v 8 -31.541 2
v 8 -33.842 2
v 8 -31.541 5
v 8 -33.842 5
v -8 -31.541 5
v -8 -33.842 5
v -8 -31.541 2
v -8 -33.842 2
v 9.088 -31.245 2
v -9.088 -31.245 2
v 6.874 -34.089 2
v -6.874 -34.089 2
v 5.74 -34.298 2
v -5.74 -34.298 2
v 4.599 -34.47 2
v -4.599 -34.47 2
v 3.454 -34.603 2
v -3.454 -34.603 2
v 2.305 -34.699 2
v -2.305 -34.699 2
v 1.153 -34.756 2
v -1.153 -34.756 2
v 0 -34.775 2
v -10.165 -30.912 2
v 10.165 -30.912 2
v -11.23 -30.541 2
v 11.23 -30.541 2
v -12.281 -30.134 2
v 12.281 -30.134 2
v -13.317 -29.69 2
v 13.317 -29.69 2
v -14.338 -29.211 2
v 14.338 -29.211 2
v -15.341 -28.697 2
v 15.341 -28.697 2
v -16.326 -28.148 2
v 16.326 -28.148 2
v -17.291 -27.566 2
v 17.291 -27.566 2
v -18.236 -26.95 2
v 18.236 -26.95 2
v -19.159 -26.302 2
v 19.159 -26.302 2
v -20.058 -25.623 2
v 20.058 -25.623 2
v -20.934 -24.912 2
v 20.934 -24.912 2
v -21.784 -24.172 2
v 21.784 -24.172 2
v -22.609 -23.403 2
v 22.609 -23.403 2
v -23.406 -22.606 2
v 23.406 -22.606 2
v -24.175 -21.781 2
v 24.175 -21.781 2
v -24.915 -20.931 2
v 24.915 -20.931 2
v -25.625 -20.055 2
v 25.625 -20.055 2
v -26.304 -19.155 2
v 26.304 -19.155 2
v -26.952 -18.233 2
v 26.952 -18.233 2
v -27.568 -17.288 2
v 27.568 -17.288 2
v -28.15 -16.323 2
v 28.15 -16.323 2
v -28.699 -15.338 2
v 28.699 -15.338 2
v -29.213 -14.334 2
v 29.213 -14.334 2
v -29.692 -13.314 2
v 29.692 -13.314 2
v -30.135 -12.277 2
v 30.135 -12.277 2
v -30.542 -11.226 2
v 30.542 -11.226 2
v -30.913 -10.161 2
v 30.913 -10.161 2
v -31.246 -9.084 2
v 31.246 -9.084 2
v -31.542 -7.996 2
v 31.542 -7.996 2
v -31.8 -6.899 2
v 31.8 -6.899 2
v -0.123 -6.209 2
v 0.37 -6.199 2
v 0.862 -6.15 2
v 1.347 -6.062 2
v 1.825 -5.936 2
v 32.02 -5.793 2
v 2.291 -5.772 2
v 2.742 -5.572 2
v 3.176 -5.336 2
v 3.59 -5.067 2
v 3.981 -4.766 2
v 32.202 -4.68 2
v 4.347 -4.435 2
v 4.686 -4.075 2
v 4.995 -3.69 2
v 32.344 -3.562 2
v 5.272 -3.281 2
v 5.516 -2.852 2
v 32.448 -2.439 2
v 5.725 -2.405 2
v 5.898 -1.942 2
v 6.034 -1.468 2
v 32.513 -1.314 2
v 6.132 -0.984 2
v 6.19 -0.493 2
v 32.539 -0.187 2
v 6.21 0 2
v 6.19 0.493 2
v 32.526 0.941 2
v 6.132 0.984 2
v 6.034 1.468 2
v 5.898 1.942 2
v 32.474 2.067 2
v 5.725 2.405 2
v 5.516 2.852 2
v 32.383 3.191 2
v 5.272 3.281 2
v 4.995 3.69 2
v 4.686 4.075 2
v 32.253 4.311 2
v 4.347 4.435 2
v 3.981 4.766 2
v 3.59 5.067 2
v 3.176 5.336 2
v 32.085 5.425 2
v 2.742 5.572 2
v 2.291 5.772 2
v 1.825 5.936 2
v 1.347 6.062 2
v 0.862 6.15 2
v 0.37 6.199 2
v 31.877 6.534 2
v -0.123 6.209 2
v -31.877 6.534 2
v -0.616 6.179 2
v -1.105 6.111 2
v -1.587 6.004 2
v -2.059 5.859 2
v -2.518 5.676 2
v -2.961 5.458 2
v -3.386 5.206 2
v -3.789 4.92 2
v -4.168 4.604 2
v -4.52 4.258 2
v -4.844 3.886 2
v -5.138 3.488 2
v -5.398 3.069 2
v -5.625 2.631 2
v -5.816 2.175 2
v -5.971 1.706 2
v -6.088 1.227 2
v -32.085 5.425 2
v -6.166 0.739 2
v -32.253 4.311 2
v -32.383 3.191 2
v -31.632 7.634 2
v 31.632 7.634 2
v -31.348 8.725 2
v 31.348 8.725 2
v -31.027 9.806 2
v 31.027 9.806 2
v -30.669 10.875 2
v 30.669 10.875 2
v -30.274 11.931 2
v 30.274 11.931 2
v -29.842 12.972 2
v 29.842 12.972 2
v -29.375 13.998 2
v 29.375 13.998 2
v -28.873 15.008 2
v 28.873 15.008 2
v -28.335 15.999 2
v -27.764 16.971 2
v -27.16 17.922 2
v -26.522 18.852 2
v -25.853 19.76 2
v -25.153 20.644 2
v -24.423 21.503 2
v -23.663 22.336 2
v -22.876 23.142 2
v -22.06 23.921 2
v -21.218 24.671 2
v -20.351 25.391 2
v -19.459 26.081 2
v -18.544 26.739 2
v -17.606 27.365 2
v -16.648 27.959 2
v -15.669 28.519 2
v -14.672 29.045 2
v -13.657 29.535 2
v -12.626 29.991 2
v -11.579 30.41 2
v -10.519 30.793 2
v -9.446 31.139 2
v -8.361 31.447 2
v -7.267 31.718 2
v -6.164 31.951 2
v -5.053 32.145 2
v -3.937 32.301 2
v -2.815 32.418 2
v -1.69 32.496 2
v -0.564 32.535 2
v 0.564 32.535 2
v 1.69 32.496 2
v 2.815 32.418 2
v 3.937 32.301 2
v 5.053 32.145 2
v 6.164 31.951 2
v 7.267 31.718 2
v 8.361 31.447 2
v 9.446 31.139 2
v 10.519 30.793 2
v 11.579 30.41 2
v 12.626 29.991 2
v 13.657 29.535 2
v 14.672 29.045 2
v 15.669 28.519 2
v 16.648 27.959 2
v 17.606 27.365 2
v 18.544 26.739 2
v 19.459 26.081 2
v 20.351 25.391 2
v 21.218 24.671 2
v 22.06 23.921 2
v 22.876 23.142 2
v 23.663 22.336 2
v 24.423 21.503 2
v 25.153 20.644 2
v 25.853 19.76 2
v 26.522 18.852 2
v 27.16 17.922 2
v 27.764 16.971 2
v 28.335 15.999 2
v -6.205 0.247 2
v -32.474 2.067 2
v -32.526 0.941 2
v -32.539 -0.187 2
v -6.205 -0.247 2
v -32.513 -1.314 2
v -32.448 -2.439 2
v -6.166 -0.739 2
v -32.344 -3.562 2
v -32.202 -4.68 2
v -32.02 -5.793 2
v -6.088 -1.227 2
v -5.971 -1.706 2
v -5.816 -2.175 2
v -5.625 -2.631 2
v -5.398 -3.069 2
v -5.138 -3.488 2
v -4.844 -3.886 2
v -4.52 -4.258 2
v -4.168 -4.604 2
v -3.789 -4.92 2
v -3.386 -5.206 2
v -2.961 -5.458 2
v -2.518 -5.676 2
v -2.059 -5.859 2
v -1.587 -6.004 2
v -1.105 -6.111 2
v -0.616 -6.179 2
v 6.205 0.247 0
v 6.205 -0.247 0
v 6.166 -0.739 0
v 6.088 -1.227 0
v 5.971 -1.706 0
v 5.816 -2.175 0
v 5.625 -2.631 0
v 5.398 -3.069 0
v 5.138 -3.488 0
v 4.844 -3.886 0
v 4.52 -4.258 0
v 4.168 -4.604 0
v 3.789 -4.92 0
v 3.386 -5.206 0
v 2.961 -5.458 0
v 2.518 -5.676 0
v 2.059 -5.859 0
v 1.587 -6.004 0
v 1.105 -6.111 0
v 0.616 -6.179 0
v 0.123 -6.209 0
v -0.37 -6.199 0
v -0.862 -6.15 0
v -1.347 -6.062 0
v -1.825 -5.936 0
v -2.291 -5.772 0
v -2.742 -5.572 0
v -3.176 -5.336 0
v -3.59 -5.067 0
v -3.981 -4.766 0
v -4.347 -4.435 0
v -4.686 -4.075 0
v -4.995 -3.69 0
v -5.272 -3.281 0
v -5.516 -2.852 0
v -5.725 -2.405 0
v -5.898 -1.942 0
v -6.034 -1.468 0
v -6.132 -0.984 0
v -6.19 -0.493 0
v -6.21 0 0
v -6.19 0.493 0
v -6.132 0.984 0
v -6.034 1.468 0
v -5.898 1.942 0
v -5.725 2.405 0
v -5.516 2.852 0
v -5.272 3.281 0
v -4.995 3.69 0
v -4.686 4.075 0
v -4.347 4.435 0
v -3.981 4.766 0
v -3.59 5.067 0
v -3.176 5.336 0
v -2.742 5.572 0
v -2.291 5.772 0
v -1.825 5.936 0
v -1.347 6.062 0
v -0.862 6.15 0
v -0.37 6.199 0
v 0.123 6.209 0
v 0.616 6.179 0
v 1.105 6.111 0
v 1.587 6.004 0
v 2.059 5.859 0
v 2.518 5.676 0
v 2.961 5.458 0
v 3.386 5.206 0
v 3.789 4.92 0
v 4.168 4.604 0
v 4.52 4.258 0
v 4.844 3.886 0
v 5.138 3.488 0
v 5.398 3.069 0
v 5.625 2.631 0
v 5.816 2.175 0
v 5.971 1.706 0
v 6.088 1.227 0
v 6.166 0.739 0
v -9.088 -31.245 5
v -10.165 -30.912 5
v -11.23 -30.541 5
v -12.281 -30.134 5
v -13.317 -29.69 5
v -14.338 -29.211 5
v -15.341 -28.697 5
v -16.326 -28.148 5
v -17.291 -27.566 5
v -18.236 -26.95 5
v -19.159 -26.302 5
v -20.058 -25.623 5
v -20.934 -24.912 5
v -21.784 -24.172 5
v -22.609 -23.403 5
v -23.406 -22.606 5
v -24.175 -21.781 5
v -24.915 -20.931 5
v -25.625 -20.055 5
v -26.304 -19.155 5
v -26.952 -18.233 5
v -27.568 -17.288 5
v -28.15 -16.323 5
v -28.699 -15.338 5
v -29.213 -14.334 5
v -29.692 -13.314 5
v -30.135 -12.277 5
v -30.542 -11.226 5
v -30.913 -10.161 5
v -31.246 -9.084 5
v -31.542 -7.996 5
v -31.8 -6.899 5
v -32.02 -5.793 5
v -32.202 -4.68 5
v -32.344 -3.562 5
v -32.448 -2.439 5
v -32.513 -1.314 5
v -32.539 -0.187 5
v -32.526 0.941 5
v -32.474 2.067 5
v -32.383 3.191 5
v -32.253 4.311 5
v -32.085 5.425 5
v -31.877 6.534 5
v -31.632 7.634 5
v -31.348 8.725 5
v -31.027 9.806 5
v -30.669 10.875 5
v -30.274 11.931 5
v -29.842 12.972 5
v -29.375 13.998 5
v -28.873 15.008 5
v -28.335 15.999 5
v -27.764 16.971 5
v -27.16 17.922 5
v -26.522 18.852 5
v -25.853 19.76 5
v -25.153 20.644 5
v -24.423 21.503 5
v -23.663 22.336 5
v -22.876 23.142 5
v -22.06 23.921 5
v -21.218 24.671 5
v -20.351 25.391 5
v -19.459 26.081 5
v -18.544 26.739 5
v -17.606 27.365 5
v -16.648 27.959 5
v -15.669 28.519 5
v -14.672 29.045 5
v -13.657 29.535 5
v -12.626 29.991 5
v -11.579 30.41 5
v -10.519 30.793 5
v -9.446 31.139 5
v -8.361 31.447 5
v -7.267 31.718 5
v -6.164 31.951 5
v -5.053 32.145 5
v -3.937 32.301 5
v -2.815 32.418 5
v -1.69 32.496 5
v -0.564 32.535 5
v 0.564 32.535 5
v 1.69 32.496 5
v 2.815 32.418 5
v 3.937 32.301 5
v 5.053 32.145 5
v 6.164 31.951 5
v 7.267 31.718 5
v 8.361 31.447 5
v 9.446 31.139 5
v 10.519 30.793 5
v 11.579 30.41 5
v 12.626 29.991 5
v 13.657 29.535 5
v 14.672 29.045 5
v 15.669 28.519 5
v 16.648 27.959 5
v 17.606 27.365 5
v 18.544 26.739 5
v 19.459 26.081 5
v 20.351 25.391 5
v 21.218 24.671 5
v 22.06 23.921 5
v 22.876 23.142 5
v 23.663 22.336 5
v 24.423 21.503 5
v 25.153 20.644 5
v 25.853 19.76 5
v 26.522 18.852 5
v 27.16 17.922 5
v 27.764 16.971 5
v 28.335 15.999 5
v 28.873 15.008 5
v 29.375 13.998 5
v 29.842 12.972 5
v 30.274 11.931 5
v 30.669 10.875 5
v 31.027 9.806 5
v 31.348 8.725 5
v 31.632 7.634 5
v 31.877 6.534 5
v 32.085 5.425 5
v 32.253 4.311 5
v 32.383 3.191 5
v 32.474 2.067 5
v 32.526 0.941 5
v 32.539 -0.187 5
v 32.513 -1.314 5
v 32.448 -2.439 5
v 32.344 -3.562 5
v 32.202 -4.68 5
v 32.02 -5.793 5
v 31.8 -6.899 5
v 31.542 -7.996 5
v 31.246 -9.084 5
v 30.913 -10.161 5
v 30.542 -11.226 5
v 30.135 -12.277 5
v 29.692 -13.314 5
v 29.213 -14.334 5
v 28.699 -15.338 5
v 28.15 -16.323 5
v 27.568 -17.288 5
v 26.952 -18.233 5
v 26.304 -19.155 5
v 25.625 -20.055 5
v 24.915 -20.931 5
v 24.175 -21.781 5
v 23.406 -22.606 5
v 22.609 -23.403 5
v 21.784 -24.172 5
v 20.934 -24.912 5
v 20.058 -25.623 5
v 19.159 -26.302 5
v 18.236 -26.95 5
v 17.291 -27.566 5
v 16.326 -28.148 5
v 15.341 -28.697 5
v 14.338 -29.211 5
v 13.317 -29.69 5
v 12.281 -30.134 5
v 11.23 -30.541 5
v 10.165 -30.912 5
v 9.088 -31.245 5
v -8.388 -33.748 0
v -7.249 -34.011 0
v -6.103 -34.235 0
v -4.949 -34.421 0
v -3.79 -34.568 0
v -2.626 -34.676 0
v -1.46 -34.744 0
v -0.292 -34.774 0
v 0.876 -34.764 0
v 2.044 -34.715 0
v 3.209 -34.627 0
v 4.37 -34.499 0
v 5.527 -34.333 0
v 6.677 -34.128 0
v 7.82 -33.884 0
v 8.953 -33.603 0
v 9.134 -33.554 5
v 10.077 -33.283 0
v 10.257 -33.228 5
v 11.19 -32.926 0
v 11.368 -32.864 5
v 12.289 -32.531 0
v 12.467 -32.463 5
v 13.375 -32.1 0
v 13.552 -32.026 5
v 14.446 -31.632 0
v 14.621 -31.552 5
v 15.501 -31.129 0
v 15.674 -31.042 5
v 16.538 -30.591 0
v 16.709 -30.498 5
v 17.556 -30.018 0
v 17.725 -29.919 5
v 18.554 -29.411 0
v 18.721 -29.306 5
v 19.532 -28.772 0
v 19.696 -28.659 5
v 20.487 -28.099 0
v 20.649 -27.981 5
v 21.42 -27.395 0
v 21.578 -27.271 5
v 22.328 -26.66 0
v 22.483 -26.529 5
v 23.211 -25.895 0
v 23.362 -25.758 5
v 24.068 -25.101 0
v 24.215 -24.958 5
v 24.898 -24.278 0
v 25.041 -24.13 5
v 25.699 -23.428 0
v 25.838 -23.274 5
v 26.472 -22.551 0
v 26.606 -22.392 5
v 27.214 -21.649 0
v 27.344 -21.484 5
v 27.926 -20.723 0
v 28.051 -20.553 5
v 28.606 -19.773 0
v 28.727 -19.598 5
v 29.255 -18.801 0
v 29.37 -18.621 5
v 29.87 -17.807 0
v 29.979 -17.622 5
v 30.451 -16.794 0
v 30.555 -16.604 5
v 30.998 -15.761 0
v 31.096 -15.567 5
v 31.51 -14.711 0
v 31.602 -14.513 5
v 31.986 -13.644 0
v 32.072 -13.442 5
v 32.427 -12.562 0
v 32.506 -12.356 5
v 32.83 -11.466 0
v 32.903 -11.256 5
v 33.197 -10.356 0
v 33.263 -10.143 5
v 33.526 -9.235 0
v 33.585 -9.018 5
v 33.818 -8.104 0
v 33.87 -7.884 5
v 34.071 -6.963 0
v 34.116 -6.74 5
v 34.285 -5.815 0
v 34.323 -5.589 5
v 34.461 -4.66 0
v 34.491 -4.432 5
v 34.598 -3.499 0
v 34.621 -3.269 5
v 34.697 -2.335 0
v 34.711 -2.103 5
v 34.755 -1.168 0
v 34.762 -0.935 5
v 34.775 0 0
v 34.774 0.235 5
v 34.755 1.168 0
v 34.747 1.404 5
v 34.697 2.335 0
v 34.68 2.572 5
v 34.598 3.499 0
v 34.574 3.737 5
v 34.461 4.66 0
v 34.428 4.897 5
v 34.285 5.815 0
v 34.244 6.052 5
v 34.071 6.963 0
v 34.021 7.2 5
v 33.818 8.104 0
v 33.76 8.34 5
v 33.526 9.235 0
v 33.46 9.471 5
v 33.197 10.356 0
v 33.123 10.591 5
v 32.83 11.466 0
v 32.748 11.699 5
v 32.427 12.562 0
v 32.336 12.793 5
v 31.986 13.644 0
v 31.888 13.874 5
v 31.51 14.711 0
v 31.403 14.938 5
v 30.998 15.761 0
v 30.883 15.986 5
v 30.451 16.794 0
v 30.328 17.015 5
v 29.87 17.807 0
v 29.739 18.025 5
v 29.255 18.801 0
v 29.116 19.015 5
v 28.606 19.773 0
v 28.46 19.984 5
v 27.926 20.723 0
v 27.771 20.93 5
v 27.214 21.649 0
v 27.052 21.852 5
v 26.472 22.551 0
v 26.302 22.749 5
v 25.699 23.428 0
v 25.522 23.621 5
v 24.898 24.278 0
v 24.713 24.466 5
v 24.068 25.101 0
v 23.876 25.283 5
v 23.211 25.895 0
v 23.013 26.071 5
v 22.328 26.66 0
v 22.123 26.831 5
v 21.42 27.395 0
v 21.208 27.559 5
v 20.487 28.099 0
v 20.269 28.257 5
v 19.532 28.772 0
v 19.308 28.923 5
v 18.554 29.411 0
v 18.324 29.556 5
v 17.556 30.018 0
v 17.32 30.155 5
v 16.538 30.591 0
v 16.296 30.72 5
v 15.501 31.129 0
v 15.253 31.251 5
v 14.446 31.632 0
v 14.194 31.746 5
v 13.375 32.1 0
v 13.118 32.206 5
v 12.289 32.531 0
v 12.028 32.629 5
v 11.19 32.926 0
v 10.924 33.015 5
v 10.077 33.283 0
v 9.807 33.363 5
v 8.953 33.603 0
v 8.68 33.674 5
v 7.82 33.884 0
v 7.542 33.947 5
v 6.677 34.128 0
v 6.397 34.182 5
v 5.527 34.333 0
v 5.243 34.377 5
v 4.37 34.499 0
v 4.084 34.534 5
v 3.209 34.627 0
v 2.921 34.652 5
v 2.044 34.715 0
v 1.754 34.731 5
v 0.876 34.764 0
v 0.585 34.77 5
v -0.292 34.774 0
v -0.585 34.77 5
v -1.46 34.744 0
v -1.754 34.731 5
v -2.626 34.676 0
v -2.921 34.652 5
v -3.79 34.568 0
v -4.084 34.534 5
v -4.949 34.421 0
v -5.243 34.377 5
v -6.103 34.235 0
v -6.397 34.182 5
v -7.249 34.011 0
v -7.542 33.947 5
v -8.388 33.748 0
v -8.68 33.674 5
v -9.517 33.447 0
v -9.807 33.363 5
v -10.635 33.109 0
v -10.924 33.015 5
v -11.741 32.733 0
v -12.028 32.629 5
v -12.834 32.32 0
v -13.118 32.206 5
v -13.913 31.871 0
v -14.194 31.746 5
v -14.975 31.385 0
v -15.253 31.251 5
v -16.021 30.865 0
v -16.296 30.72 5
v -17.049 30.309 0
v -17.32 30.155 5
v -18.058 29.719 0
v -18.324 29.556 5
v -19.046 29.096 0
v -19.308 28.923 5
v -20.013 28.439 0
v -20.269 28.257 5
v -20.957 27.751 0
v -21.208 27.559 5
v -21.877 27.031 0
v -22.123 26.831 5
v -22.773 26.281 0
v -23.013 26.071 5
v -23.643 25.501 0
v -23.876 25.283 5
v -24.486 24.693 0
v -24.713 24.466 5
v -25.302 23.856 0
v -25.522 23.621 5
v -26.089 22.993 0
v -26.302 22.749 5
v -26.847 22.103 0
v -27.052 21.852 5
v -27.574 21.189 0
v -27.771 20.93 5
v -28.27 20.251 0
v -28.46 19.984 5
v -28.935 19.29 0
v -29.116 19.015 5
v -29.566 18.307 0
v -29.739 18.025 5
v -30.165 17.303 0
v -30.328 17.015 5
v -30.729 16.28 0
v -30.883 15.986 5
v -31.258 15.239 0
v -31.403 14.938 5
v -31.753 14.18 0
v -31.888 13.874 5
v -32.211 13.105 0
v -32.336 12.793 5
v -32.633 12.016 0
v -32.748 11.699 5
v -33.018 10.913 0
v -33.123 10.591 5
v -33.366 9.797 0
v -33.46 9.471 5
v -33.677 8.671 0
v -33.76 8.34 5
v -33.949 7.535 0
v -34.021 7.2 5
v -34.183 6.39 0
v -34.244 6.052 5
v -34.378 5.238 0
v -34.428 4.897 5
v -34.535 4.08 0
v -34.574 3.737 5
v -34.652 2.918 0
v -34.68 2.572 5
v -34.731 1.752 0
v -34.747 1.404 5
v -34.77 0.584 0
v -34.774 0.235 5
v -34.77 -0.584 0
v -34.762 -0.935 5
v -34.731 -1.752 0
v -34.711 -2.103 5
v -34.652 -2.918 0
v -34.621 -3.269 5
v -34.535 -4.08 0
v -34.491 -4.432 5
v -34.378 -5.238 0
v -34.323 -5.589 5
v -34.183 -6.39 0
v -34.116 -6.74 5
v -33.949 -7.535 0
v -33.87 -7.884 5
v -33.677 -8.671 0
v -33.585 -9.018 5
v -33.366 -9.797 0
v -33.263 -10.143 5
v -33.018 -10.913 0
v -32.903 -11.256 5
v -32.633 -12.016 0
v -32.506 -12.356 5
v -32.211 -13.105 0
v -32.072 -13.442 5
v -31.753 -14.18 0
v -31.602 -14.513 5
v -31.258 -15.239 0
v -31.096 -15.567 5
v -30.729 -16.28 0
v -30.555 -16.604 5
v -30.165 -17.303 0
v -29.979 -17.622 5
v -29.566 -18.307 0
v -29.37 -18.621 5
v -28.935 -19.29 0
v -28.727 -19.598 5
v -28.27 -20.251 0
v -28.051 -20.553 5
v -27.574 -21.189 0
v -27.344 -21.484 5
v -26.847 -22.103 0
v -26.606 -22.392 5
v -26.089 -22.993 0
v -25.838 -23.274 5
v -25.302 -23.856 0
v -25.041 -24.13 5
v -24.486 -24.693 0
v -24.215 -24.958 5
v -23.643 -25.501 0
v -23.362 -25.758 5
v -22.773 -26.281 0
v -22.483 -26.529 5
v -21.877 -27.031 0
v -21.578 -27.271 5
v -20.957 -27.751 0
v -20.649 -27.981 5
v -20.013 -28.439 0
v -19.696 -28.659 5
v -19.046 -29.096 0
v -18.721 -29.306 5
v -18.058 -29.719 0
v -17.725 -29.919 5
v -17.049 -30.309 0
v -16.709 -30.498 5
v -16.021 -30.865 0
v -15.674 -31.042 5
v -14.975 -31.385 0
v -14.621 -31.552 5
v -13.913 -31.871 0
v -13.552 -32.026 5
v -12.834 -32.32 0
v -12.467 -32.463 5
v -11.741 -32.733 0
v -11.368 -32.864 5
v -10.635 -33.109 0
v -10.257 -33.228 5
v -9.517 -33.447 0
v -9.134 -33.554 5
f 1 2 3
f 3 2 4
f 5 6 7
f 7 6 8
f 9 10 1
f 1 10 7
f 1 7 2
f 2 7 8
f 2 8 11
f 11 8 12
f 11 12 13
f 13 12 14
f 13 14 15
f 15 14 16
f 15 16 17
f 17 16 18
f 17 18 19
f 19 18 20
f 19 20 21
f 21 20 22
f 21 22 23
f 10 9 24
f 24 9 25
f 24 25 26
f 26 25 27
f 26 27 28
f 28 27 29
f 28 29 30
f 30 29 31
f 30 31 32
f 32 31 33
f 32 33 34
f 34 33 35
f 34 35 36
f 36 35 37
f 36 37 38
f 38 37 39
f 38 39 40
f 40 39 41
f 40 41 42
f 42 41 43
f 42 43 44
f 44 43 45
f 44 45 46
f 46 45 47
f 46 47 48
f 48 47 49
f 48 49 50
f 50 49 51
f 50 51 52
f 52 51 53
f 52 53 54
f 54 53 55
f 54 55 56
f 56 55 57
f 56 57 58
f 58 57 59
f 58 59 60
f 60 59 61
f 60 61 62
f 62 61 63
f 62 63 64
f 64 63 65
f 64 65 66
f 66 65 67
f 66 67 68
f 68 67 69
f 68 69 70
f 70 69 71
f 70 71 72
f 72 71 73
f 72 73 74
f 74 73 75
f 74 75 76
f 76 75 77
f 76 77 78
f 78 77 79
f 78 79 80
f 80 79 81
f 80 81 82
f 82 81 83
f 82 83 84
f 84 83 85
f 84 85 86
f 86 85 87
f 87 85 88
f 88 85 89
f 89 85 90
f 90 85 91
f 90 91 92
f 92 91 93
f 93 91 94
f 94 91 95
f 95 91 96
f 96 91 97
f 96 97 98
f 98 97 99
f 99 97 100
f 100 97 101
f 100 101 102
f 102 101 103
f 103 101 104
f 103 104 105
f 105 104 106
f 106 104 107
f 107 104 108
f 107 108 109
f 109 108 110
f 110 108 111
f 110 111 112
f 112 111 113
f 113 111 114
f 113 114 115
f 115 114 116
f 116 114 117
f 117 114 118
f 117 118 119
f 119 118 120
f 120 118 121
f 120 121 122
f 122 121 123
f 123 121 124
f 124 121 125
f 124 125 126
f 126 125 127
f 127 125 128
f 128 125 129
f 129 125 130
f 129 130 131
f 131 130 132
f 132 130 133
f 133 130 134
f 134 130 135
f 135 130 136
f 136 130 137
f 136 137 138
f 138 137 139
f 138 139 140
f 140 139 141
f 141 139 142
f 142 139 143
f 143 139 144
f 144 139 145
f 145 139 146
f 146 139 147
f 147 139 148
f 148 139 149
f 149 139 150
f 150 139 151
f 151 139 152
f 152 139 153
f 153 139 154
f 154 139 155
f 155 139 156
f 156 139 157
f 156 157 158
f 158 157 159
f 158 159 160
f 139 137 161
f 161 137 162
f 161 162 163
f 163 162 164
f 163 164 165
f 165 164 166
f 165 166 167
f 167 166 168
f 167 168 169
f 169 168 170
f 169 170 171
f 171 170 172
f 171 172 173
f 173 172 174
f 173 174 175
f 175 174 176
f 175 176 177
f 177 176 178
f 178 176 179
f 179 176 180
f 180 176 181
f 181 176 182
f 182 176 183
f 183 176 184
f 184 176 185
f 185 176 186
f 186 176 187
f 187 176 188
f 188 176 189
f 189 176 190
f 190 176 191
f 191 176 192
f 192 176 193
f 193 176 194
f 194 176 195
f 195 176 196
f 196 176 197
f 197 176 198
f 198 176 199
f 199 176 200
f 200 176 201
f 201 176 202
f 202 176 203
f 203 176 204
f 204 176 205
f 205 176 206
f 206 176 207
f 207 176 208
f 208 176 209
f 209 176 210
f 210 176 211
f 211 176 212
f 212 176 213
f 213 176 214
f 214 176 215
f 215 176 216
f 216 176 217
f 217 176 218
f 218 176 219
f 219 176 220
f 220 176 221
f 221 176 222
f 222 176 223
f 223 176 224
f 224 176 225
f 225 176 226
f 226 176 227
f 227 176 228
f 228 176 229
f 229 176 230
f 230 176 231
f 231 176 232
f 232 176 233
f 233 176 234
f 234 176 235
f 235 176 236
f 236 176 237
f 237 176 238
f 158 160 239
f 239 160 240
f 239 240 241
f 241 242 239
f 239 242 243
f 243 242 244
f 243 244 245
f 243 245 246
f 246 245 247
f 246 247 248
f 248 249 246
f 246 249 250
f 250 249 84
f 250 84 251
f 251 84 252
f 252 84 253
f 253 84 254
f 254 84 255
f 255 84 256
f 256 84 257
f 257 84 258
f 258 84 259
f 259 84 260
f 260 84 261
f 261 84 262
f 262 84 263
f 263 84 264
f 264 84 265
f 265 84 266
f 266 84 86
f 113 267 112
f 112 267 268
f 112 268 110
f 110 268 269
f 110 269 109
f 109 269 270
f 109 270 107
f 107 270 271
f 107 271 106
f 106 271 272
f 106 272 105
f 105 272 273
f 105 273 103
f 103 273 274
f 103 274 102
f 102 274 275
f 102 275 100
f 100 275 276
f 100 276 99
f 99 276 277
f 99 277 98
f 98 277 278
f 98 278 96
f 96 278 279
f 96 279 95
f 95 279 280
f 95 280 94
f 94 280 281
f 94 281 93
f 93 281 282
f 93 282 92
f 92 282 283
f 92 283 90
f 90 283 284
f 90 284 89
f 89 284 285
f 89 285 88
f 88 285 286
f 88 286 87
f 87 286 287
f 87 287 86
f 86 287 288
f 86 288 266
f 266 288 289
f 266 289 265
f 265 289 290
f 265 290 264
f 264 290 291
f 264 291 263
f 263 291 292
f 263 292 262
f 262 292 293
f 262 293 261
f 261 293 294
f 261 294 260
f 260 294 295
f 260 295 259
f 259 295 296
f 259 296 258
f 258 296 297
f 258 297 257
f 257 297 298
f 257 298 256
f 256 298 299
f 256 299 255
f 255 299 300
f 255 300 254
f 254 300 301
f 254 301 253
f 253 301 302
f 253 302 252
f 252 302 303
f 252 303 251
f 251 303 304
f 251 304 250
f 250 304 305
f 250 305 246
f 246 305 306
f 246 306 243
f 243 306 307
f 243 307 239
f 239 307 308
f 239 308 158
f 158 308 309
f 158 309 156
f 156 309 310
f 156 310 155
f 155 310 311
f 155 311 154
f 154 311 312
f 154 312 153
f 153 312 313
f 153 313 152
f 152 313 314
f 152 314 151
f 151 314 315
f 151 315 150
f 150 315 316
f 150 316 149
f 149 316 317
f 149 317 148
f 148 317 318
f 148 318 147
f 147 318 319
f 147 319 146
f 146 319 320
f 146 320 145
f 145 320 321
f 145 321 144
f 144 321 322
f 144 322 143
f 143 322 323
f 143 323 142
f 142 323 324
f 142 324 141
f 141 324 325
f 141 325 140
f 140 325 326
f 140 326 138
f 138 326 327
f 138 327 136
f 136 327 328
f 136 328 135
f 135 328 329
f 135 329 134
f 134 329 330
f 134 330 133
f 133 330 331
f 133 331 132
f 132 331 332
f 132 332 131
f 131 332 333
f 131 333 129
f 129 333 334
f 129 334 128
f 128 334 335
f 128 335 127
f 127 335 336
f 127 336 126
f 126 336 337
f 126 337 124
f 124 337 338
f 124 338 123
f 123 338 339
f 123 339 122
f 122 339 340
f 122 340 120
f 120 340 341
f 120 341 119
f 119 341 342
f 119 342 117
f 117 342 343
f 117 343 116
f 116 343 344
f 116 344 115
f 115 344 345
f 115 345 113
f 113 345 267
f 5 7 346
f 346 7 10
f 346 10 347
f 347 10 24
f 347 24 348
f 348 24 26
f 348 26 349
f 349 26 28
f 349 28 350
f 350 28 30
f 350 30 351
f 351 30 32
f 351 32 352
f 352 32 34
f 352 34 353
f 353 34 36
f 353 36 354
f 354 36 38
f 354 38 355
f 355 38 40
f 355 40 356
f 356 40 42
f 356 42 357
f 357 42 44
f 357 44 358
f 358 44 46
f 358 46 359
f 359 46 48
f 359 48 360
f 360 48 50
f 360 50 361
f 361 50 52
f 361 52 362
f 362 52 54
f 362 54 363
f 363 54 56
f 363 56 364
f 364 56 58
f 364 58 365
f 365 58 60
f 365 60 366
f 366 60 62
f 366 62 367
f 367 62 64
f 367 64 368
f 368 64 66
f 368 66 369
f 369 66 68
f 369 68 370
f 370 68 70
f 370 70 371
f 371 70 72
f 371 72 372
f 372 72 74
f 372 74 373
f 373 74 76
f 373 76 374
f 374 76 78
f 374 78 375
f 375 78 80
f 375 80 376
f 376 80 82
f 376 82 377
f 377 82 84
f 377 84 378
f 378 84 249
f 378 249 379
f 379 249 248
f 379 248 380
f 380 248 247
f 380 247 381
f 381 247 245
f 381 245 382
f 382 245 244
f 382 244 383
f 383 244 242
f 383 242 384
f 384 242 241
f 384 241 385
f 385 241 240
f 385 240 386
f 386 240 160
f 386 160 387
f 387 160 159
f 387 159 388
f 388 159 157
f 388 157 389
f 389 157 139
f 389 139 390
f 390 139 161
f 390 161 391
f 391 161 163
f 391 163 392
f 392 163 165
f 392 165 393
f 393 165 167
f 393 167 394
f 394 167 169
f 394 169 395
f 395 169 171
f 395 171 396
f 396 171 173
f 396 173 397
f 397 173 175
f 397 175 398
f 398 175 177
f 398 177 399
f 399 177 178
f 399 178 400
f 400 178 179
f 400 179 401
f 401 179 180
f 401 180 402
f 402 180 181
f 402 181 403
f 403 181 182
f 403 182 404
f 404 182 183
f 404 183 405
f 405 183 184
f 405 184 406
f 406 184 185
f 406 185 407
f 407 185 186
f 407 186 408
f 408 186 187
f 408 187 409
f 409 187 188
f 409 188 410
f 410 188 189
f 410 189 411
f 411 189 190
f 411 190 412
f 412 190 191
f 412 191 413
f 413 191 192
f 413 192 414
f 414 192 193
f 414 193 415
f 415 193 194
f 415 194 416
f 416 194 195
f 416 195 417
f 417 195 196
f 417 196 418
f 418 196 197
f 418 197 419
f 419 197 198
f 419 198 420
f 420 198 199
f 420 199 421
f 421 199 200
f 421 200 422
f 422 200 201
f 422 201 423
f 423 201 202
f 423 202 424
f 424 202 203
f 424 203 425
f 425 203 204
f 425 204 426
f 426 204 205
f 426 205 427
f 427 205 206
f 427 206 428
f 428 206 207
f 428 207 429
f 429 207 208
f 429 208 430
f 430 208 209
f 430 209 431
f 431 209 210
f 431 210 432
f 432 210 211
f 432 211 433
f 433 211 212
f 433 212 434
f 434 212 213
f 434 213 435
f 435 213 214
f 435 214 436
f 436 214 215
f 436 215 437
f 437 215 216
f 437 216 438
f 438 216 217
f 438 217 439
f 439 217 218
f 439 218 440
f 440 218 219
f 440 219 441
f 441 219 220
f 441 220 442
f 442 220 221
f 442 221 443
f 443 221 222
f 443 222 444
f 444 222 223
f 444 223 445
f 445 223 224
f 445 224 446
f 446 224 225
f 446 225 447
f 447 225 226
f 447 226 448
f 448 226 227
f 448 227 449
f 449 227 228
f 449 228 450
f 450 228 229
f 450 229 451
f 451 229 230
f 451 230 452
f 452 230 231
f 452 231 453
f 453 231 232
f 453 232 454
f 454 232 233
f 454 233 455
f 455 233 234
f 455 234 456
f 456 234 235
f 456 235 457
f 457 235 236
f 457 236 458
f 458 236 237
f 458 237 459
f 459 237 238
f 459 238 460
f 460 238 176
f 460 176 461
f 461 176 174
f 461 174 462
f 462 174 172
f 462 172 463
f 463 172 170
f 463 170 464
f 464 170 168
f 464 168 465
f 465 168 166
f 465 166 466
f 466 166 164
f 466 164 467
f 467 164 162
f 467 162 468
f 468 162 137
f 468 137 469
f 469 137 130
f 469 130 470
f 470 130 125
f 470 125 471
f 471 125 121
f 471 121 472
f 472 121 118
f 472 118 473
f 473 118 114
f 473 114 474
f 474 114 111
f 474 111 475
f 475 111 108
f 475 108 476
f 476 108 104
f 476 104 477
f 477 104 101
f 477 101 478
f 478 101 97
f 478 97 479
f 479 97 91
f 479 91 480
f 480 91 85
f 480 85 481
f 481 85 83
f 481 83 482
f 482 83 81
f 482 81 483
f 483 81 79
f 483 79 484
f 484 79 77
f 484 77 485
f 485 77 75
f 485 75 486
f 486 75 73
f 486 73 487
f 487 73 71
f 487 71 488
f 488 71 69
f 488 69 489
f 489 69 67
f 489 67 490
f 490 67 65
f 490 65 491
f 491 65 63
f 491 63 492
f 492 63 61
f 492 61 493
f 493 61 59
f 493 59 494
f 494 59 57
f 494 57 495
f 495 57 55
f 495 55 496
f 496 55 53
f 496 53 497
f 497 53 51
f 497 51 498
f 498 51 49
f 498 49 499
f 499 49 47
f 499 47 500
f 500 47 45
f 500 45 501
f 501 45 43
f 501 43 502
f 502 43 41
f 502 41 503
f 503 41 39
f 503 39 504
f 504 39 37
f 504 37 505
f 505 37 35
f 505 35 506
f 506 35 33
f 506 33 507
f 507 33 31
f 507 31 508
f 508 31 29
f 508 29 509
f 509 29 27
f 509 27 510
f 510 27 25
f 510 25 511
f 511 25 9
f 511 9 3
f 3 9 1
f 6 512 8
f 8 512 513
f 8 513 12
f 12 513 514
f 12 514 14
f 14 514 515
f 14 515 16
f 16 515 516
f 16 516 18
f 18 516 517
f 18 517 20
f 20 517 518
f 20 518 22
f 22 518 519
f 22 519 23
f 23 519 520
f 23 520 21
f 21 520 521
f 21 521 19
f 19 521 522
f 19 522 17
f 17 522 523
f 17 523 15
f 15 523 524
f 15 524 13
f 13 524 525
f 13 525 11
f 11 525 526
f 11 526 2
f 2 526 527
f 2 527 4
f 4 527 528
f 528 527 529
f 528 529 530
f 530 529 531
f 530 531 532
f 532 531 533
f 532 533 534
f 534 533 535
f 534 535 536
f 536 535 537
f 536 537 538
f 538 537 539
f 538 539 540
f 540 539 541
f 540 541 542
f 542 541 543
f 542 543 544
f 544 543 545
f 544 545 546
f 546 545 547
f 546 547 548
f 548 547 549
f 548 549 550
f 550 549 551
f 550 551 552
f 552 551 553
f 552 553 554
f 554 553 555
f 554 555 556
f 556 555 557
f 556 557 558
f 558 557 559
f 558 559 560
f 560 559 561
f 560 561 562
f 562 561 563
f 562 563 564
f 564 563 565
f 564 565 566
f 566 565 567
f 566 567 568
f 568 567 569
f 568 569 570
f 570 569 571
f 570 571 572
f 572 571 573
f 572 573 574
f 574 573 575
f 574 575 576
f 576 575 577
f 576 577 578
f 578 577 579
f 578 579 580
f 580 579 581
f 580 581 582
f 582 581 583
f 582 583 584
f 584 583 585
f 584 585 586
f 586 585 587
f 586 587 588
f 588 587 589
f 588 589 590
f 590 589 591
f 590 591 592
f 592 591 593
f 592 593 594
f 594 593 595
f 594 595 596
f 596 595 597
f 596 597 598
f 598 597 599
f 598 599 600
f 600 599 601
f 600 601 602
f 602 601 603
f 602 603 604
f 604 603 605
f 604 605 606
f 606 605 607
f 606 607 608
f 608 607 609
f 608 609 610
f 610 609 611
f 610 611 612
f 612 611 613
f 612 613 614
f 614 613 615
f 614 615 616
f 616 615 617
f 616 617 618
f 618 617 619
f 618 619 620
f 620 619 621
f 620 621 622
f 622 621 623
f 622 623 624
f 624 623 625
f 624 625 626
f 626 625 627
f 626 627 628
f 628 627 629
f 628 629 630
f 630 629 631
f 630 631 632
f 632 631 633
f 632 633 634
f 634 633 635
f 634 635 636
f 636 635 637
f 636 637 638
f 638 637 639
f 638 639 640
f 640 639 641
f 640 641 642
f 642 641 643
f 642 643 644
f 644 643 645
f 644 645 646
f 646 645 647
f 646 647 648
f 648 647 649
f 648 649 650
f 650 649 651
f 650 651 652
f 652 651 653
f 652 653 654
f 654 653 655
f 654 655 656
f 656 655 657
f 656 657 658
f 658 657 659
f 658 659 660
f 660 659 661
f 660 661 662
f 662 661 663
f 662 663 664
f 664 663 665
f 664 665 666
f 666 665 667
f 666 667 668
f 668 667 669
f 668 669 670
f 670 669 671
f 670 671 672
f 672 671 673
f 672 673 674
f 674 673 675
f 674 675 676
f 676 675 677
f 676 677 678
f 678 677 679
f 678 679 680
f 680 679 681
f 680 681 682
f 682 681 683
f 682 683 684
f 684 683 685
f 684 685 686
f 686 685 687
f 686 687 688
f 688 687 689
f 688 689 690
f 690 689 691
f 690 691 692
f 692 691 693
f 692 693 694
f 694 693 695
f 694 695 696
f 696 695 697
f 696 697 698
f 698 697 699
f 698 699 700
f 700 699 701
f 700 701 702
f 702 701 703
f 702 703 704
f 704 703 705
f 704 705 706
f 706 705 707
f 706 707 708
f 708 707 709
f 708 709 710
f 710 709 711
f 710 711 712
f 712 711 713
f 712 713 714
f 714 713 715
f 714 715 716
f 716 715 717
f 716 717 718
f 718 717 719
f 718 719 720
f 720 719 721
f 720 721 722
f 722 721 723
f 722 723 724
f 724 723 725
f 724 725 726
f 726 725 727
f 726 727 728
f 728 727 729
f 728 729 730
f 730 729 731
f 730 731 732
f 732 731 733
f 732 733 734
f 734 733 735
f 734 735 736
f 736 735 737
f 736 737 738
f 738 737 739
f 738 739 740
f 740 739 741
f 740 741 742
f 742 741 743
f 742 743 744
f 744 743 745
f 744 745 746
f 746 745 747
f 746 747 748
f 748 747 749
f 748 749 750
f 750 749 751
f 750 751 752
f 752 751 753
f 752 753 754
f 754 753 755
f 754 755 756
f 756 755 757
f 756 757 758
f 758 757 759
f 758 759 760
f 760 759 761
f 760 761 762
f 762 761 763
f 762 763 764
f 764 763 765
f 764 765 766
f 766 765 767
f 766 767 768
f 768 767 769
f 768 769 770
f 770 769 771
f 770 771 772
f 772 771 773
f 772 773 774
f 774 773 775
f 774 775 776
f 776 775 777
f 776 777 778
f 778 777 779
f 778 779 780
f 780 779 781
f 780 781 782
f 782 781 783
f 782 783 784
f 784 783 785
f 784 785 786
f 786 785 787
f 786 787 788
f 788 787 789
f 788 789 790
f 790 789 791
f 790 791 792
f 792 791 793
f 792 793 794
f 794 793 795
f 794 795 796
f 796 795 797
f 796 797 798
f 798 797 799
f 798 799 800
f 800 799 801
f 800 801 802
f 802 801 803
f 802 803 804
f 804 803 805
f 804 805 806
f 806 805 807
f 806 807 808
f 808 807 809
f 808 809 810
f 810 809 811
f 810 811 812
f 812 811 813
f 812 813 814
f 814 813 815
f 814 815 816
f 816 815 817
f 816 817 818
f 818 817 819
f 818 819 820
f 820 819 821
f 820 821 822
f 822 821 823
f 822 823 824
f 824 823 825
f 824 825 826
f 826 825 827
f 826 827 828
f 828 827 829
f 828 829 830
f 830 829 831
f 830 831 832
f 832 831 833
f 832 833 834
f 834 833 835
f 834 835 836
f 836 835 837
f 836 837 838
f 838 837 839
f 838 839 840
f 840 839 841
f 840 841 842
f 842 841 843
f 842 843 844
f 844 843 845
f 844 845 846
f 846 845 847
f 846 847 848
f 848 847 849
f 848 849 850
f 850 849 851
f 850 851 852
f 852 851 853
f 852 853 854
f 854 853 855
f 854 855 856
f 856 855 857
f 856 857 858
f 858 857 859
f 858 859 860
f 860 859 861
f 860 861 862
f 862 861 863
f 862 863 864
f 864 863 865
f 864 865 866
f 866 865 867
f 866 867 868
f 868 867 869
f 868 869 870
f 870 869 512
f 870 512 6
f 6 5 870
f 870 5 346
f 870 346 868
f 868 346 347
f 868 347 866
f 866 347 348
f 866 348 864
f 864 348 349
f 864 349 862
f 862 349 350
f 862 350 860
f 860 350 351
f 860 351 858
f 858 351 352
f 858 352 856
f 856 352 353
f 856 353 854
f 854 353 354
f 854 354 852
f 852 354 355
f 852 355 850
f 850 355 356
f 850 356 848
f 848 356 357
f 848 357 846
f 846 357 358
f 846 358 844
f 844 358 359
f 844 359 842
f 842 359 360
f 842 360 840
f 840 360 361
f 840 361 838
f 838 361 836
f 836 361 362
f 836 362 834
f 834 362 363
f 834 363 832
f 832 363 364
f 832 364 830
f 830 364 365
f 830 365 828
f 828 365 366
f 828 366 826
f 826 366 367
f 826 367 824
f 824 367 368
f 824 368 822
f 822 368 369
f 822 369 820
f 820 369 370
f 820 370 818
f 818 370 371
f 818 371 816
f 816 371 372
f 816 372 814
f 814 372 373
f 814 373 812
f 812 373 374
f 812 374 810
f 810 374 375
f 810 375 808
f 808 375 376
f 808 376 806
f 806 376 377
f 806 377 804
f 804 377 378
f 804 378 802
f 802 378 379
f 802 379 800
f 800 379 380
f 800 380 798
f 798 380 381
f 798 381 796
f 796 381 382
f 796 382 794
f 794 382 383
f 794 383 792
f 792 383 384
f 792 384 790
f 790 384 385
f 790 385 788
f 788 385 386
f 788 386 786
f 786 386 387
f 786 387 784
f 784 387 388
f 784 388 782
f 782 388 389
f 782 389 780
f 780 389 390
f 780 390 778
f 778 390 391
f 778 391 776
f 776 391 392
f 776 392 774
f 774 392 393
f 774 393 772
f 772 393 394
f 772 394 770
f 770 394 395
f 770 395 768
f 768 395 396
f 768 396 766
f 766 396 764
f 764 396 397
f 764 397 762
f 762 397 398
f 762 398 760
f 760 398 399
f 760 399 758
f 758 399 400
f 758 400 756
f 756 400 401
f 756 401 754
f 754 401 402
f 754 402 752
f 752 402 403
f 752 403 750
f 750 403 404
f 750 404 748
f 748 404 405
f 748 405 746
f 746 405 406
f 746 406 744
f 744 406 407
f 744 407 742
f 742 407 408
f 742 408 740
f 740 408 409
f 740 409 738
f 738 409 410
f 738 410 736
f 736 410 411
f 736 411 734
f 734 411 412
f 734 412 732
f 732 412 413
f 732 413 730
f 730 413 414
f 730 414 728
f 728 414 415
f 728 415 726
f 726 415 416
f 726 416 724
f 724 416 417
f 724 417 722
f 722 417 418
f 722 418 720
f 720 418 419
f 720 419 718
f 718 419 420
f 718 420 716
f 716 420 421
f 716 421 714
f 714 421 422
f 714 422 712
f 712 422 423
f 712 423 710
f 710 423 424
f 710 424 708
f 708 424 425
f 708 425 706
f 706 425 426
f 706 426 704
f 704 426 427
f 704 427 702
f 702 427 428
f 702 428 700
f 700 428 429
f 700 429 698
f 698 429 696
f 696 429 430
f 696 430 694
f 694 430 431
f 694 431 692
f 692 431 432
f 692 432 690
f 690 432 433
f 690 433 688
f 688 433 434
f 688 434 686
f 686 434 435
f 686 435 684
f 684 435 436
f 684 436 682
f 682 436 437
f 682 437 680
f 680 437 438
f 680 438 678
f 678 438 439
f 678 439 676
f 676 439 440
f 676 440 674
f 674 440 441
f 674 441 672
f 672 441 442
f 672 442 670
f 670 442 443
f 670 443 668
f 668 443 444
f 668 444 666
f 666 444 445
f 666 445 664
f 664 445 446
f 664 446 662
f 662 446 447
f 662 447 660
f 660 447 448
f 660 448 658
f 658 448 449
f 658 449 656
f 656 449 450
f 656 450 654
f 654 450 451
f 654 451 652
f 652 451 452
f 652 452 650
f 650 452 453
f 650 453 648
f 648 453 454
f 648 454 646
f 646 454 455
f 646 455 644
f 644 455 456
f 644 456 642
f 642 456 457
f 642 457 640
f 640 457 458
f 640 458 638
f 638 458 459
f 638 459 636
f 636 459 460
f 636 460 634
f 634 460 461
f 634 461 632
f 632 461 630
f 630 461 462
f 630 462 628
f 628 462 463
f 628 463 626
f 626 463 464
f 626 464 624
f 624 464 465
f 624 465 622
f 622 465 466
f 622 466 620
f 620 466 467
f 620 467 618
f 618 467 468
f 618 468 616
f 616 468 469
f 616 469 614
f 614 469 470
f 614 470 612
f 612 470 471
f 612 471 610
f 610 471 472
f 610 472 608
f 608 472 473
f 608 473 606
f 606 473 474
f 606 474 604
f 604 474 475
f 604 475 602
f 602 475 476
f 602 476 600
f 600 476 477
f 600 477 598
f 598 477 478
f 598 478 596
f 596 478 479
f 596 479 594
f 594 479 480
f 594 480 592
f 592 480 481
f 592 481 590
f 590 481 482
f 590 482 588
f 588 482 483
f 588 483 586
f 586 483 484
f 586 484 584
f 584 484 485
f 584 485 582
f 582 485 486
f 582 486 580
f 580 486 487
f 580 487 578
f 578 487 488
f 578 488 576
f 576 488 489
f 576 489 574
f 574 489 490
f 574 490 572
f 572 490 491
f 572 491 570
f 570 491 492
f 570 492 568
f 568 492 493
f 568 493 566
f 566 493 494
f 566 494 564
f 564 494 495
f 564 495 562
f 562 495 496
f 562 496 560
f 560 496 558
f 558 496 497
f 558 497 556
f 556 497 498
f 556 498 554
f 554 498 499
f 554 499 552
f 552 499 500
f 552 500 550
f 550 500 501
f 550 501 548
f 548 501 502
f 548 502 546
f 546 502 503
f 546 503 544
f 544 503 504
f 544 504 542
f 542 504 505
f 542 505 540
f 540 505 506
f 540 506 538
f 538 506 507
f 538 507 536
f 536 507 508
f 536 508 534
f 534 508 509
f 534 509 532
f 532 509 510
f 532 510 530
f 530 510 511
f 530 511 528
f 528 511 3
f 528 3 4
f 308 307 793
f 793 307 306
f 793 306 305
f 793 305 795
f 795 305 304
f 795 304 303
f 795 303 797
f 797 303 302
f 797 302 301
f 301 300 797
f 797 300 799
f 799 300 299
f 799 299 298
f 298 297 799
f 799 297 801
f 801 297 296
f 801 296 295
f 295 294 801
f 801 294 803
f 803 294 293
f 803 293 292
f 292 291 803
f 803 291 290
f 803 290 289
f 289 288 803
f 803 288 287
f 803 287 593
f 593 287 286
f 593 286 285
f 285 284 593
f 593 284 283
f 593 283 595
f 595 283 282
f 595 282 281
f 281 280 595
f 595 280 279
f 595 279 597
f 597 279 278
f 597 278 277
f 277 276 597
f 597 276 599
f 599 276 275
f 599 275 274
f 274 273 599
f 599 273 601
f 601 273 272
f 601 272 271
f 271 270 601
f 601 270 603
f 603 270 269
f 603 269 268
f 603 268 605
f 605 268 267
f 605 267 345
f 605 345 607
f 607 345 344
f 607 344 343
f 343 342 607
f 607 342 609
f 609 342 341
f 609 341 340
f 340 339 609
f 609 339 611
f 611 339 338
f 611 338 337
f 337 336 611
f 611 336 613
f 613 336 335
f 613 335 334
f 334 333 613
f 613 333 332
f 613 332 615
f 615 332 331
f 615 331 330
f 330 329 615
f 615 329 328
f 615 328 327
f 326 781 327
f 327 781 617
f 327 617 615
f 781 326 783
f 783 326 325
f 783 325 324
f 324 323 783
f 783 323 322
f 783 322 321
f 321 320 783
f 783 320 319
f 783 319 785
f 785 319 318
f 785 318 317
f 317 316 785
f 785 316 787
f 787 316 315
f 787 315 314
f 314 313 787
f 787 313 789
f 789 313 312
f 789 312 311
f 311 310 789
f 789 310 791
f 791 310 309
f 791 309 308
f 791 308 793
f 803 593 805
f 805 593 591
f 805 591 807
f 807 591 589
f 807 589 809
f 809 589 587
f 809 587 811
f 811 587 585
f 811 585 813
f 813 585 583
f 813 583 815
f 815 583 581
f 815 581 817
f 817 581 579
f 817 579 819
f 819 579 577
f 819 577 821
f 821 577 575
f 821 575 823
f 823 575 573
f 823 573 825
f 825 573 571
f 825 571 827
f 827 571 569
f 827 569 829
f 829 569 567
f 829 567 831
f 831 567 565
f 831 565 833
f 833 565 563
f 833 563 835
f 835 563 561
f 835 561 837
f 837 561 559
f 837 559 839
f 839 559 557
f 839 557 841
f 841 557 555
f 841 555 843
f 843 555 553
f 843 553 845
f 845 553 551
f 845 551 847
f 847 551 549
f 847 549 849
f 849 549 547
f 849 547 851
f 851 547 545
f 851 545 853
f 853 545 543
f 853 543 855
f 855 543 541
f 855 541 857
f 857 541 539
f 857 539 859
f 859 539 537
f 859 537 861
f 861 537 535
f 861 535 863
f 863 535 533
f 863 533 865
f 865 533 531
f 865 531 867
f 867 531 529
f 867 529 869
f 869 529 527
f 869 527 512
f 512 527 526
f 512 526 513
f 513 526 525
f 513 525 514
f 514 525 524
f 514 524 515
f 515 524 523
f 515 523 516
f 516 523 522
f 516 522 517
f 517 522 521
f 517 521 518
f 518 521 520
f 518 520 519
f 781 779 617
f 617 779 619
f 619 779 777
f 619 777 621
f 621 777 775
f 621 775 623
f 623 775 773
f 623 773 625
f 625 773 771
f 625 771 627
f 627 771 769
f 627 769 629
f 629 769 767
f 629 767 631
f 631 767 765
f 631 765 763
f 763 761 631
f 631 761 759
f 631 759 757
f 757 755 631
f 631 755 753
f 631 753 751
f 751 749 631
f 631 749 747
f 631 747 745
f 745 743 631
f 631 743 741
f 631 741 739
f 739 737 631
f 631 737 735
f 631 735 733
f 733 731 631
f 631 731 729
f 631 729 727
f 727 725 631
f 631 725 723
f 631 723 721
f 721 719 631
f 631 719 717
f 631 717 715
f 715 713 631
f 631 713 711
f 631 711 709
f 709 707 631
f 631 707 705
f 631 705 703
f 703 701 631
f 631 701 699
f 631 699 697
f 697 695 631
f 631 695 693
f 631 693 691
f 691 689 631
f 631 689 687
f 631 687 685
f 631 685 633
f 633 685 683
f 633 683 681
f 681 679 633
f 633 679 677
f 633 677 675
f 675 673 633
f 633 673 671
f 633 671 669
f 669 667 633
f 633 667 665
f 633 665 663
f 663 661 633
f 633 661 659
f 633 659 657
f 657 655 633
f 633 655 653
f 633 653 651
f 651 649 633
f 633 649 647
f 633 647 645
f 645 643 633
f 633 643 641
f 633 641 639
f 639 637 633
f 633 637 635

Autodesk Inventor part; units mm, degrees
ref_plane "YZ Plane" through (0, 0, 0) normal (1, 0, 0) x (0, 1, 0)
ref_plane "XZ Plane" through (0, 0, 0) normal (0, 1, 0) x (-1, 0, 0)
ref_plane "XY Plane" through (0, 0, 0) normal (0, 0, 1) x (1, 0, 0)
sketch "Skizze1" plane through (0, 0, 0) normal (0, 0, 1) x (1, 0, 0)
  circle A0 centre (0, 0) radius 34.775
  dimension "d0" = 69.55
extrude "Extrusion1" add sketch "Skizze1" along normal blind 5
sketch "Skizze2" plane through (0, 0, 5) normal (0, 0, 1) x (1, 0, 0)
  circle A0 centre (0, 0) radius 32.54
  dimension "d3" = 65.08
extrude "Extrusion2" cut sketch "Skizze2" against normal blind 3
sketch "Skizze3" plane through (0, 0, 0) normal (0, 0, -1) x (-1, 0, 0)
  circle A0 centre (0, 0) radius 6.21
  dimension "d6" = 12.42
extrude "Extrusion3" cut sketch "Skizze3" against normal through all
sketch "Skizze4" plane through (0, 0, 5) normal (0, 0, 1) x (1, 0, 0)
  line L0 (-8, -42.775) -> (8, -42.775)
  line L1 (8, -42.775) -> (8, -26.775)
  line L2 (8, -26.775) -> (-8, -26.775)
  line L3 (-8, -26.775) -> (-8, -42.775)
  circle A0 centre (0, 0) radius 34.775 projected
  line L4 (-8, -42.775) -> (8, -26.775) construction
  line L5 (8, -42.775) -> (-8, -26.775) construction
  point P0 (0, -34.775)
  dimension "d9" = 16
  dimension "d10" = 16
extrude "Extrusion4" cut sketch "Skizze4" against normal up to surface (3 mm away) contours L3 A0 L1 L0 | L3 L2 L1 A0 picked at (0.896, -29.407)
properties part number "2024_08_28_Holder_disk_GL14"
